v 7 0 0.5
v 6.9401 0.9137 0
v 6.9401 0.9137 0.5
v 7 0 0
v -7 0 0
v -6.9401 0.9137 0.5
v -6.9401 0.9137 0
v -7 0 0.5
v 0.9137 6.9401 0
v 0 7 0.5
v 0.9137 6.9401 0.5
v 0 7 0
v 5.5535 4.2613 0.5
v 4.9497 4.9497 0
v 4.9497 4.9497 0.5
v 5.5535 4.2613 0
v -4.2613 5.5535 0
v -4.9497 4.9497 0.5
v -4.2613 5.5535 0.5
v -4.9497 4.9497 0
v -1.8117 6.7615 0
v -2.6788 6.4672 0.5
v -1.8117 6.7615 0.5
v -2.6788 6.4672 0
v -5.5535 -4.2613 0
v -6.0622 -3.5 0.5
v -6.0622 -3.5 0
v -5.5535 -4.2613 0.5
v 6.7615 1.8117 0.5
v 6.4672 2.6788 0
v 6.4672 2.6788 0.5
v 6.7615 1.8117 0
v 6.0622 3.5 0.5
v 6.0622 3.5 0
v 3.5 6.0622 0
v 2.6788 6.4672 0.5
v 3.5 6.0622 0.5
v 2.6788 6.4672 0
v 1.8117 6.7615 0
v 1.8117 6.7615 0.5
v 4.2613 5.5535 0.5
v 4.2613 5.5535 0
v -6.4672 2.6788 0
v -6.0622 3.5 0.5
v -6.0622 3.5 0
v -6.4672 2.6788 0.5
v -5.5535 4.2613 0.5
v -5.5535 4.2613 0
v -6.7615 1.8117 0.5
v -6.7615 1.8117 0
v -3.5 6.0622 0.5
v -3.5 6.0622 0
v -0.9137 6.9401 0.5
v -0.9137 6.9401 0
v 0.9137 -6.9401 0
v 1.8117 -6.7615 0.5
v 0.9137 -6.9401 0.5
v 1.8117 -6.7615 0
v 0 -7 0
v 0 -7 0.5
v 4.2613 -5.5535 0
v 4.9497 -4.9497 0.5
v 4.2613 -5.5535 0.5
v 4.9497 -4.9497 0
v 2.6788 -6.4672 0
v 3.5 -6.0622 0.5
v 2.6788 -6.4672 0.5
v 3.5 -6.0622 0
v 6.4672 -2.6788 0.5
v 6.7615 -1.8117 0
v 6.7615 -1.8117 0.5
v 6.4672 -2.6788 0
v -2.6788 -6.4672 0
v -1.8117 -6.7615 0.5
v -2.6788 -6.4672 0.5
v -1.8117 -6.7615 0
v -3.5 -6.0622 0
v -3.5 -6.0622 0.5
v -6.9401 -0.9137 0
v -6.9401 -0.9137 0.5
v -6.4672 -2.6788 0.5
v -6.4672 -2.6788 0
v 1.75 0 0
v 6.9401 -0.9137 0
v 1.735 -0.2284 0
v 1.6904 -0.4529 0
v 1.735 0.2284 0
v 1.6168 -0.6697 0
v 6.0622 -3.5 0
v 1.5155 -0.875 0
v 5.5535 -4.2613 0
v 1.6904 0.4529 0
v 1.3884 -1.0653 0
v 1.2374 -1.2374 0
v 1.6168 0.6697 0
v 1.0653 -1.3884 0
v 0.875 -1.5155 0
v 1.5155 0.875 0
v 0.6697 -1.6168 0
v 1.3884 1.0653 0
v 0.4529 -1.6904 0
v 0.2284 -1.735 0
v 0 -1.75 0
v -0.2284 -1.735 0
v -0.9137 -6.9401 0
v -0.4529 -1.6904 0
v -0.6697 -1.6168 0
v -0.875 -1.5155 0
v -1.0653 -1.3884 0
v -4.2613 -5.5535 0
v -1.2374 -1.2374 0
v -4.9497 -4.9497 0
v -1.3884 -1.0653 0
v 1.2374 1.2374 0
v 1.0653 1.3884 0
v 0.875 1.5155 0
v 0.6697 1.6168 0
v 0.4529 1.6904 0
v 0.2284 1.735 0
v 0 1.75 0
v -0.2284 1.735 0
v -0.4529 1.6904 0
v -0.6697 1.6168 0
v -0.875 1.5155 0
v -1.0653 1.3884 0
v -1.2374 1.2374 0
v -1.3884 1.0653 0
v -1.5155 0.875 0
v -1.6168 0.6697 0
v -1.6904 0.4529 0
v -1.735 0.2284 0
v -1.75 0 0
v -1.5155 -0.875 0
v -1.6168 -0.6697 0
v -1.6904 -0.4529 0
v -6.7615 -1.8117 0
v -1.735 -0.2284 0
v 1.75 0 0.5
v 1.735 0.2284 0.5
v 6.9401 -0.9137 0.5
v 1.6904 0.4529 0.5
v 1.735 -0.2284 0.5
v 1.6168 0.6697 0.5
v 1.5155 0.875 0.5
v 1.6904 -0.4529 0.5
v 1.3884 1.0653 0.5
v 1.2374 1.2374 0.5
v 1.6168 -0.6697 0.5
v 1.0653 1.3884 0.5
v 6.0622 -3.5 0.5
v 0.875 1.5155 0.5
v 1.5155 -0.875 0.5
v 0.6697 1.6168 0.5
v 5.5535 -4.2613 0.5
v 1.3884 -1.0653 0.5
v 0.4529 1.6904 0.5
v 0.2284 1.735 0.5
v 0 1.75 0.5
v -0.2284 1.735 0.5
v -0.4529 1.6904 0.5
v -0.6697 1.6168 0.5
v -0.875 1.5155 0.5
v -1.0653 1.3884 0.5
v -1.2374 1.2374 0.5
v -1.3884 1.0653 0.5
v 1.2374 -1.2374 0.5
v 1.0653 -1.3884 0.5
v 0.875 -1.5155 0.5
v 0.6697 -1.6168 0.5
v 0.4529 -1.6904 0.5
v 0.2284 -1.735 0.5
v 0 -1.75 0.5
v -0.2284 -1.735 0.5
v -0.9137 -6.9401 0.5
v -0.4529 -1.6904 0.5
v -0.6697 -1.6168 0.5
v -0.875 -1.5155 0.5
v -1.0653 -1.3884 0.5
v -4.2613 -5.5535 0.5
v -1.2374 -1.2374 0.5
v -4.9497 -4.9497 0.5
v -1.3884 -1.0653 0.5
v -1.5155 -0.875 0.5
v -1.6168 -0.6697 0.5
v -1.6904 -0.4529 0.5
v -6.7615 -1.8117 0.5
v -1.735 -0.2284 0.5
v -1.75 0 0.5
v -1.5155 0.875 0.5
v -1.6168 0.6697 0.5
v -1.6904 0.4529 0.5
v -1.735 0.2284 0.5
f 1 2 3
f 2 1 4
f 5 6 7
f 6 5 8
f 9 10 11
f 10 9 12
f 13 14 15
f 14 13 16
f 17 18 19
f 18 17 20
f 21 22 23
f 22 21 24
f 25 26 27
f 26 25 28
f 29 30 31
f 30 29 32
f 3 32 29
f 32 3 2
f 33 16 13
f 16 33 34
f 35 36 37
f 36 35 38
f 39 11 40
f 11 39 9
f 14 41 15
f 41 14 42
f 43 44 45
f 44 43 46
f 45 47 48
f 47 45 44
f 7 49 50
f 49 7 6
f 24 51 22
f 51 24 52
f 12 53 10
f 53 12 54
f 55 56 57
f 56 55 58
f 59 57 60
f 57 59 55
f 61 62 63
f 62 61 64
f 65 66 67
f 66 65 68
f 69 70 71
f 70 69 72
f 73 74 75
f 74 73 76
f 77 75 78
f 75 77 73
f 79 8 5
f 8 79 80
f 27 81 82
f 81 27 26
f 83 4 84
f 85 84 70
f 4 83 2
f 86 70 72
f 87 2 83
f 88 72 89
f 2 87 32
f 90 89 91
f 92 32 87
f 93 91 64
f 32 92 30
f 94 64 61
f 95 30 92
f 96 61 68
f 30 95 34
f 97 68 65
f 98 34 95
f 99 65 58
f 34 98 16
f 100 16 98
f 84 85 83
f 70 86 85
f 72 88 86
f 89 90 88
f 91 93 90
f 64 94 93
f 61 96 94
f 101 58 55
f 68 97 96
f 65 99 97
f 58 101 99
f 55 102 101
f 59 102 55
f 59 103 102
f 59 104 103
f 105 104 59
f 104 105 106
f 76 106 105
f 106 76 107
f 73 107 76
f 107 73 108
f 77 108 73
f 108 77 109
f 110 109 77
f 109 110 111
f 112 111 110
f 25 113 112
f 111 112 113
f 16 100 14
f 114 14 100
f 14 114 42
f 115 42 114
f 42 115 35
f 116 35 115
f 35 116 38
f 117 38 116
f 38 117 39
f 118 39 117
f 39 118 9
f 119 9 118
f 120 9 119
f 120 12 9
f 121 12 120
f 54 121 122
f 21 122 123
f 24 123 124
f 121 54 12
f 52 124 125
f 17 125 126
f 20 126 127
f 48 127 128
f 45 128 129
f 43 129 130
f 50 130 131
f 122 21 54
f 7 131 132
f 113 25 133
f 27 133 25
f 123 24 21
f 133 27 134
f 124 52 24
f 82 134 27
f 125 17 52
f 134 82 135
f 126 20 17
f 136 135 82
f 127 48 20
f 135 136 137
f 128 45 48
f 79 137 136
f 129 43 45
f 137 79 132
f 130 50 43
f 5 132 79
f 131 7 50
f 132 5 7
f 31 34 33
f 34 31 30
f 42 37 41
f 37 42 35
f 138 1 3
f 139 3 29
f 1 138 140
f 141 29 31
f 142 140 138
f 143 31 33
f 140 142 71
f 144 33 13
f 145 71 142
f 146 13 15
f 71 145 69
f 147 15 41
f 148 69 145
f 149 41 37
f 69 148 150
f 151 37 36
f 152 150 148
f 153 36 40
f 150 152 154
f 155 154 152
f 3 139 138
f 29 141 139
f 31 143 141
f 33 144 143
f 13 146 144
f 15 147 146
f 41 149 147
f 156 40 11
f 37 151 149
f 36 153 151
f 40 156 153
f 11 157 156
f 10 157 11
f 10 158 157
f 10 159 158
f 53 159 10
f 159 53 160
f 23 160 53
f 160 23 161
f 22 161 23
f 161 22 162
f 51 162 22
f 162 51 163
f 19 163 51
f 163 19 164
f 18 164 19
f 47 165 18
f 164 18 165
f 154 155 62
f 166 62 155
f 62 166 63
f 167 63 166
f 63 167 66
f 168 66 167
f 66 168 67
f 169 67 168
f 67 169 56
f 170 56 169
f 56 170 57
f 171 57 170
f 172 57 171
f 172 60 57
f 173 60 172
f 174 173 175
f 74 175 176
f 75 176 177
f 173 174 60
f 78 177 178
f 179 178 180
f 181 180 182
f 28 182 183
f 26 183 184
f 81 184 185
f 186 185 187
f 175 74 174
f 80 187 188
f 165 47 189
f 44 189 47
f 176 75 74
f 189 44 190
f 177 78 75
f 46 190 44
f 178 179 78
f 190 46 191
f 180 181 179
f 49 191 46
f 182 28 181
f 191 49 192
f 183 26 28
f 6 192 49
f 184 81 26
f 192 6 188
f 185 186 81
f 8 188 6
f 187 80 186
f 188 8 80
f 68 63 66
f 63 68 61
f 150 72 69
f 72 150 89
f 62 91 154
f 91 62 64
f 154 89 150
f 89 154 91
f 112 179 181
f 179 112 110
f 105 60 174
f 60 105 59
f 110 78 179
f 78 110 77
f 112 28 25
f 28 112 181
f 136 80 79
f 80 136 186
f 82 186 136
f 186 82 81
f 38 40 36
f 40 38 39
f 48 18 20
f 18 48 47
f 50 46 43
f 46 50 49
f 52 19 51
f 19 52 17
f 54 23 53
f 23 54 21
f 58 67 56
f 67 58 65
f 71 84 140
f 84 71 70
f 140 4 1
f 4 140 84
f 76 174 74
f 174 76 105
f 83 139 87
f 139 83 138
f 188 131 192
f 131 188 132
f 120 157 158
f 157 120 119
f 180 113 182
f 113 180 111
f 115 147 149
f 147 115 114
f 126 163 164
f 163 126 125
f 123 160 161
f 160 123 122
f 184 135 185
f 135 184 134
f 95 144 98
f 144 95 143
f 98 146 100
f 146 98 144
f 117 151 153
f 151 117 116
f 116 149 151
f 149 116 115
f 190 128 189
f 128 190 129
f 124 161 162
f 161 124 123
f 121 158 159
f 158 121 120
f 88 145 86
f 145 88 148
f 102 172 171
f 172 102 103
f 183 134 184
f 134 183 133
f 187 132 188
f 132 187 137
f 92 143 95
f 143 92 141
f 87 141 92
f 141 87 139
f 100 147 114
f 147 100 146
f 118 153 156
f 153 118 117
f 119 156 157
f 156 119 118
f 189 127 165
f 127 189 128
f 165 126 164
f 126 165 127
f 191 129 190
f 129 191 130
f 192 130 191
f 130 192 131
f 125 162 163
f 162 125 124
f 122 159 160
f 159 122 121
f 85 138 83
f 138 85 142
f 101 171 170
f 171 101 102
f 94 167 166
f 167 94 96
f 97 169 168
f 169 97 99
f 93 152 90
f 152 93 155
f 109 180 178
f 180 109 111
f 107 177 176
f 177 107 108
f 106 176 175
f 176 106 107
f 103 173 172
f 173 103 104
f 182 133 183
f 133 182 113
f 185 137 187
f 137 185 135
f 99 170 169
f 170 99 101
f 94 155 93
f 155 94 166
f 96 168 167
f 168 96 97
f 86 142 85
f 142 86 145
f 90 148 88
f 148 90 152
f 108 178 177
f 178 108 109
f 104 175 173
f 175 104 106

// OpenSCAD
// file: parameters.scad
// =============================================================================
// Gen-BF — nightly 2026-10-04 (physics_scorer, honest magpylib watts)
// 8-pole / 6-coil dual rotor with big 51.5 deg sector coils and TALL 9.9 mm copper, magnets seated directly on 3 mm steel back-iron discs (through-pockets) so the field stays high across a wide gap.
// Clocking 0 deg (magnets N facing S) + D-flat keyed bore + index notch + flip-symmetric hole map.
// Windable 2-piece bobbin; turns = physics_scorer turns_fit; copper only between flanges.
// Steel back-iron: two 3.0 mm mild-steel discs (steel_backiron_disc.dxf); magnets sit ON the steel
// (through-pockets) -> score with --back-iron.
// =============================================================================
topology            = "dual_rotor";

// --- Wire / winding (physics_scorer winding-fit) -------------------------------
wire_awg            = 26;
wire_od             = 0.45;     // insulated OD mm (bare 0.405)
fill_realistic      = 0.60;     // insulated-wire area / window, hand-wound layered
turns               = 571;       // = physics_scorer turns_fit (do NOT raise)
coil_former_type    = "bobbin";
coil_core_inset     = 15.30;     // radial copper build: hub = copper boundary inset by this
wind_build_axial    = 0.0;      // nothing proud of the flanges
wind_build_radial   = 0.0;

// --- Bobbin (base + lid) ---------------------------------------------------------
coil_id_r           = 25.00;    // copper boundary sector
coil_od_r           = 62.00;
span_deg            = 51.51;    // = pitch - 2*asin((wall+0.85)/coil_id_r) -> >=1.2 mm stator web
former_web          = 9.90;     // copper height between flanges (TALL copper: steel keeps Bz up)
flange_t            = 0.80;     // >= 0.8 mm FDM wall rule (tall winds push on the flanges)
wall                = 1.00;     // flange lip beyond copper
former_bare_h       = former_web + 2 * flange_t;
coil_envelope_h     = former_bare_h + 2 * wind_build_axial;
tab_w               = 7.0;
tab_len             = 7.0;
tab_h               = former_bare_h / 2;
pin_d               = 1.9;      // 1.75 mm filament locating pin
coil_mount_r        = coil_od_r + 0.2 + 4.0;
lead_y              = 1.6;
lead_slot_w         = 0.9;
lead_groove_d       = 0.6;

// --- Gap -------------------------------------------------------------------------
run_clear           = 0.50;     // rotor face -> flange
gap_spacer_h        = run_clear + wind_build_axial;
m2m                 = coil_envelope_h + 2 * run_clear;   // rotor face to rotor face (= gap_sleeve length)

// --- Stator ----------------------------------------------------------------------
coil_stations       = 6;
bay_clear           = 0.25;
stator_thick        = former_bare_h;                        // bobbins flush both faces
stator_od           = 149.0;
shaft_clear_stator  = 14.0;     // stator is static; gap sleeve OD 12 spins inside

// --- Rotor(s) --------------------------------------------------------------------
magnet_Br           = 1.43;     // N52
magnet_d_large      = 20.0;
magnet_h_large      = 5.0;      // one O20x5 per pocket
magnet_h_small      = 5.0;      // one O5x5 per pocket
halbach_magnetisation = "diametric"; // O5x5 assist magnets MUST be DIAMETRICALLY magnetised (tangential)
rotor_b_same_axis   = true;     // same-index magnets share one axis: N faces S across the gap
large_pocket_d      = 20.3;
small_pocket_d      = 5.3;
pocket_h            = 5.10;     // THROUGH the carrier: magnet back face sits on the steel disc
large_n             = 8;
R_large             = 44.0;
R_small_inner       = 30.0;
R_small_mid         = 44.0;
R_small_outer       = 59.0;
small_r_list        = [R_small_inner, R_small_mid, R_small_outer];   // O5 pockets between poles
carrier_od          = 127.0;
carrier_thick       = pocket_h;
hub_h               = 10.0;
hub_od              = 24.0;     // slim hub so the M4 brace rods fit at R~18 inside the coil ring
hub_insert_d        = 4.0;      // M3 heat-set insert, radial, bears on the D-flat
rotor_b_offset_deg  = 0.0;      // CLOCKING: magnets directly opposite
shaft_key           = "dflat";
dflat_depth         = 0.5;      // 8 mm shaft with 0.5 mm flat (7.5 across flat)
index_notch_d       = 3.0;

// --- Steel back-iron (buyable laser-cut) -------------------------------------------
steel_t             = 3.0;      // mild steel thickness (not modelled by the image method; >=3 avoids saturation)
steel_center_hole   = 26.0;     // slips over the rotor hub (OD 24)

// --- Modular MAX interface ----------------------------------------------------------
shaft_bore          = 8.35;
dflat_x             = 4.0 - dflat_depth + (shaft_bore - 8.0) / 2;
bearing_d           = 21.85;
bearing_h           = 7.2;
m3_clear            = 3.5;
bolt_r_inner        = 27.0;     // M3 steel-disc clamp bolts (inside the magnet ring)
bolt_n_inner        = 4;
bolt_inner_angles   = [0, 90, 180, 270];
bolt_r_outer        = 57.0;     // M3 steel-disc clamp bolts (outside the magnet ring)
bolt_outer_angles   = [0, 90, 180, 270];
flange_bolt_r       = 69.5;     // frame rods: OUTSIDE the rotor OD (rotors spin inside them)
flange_bolt_n       = 6;
flange_bolt_offset  = 30.00;    // between coil stations -> never cuts a lead groove/tab
brace_r             = 18.0;
brace_d             = 4.3;      // temporary M4 jack rods (assembly only)
brace_n             = 4;
brace_angles        = [45, 135, 225, 315];          // flip-symmetric

spacer_pad_od       = 14.0;
spacer_pad_id       = m3_clear;
endbell_od          = 149.0;
endbell_thick       = 8.0;
endbell_shaft_clear = 10.0;
collar_h            = 10.0;
standoff_od         = 9.0;
frame_standoff_h    = run_clear + carrier_thick + hub_h + collar_h + 2.0;
sleeve_od           = 12.0;
plate_max_mm        = 410;

$fn = 64;
// main file
// Gen-BF — assembly gap shim, h = run_clear (rotor face -> flange); copper is inside the flanges
include <parameters.scad>;
$fn = 48;
difference() {
    cylinder(d=spacer_pad_od, h=gap_spacer_h);
    translate([0, 0, -0.1]) cylinder(d=spacer_pad_id, h=gap_spacer_h + 0.2);
}
